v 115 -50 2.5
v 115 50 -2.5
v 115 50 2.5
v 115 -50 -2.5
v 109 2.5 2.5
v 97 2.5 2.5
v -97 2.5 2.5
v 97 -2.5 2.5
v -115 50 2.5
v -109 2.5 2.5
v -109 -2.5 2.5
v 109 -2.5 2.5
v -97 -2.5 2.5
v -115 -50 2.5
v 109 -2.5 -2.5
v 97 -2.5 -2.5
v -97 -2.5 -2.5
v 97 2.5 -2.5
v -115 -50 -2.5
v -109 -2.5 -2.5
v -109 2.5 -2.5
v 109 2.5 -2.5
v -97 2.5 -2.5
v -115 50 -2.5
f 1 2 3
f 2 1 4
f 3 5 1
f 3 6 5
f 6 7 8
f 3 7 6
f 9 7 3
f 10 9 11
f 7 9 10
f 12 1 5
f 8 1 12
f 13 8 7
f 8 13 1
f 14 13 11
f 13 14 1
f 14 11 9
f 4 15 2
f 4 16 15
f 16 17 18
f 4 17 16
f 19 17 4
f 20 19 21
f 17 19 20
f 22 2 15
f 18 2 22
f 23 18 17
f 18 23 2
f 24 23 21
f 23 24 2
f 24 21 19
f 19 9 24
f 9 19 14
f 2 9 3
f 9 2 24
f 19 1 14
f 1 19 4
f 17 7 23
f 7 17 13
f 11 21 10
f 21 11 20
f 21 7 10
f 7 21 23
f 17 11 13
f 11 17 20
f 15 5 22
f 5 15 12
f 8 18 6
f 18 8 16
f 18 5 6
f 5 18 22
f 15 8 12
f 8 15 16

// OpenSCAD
// ========================================
// a 230 x 100 x 5 mm plate with two 12 x 5 mm slots
// NeuroCAD canonical IR; dimensions are millimetres
// ========================================
$fn = 48;

difference() {
  cube(size=[230, 100, 5], center=true);
  translate([-103, 0, 0]) {
    cube(size=[12, 5, 7], center=true);
  }
  translate([103, 0, 0]) {
    cube(size=[12, 5, 7], center=true);
  }
}
